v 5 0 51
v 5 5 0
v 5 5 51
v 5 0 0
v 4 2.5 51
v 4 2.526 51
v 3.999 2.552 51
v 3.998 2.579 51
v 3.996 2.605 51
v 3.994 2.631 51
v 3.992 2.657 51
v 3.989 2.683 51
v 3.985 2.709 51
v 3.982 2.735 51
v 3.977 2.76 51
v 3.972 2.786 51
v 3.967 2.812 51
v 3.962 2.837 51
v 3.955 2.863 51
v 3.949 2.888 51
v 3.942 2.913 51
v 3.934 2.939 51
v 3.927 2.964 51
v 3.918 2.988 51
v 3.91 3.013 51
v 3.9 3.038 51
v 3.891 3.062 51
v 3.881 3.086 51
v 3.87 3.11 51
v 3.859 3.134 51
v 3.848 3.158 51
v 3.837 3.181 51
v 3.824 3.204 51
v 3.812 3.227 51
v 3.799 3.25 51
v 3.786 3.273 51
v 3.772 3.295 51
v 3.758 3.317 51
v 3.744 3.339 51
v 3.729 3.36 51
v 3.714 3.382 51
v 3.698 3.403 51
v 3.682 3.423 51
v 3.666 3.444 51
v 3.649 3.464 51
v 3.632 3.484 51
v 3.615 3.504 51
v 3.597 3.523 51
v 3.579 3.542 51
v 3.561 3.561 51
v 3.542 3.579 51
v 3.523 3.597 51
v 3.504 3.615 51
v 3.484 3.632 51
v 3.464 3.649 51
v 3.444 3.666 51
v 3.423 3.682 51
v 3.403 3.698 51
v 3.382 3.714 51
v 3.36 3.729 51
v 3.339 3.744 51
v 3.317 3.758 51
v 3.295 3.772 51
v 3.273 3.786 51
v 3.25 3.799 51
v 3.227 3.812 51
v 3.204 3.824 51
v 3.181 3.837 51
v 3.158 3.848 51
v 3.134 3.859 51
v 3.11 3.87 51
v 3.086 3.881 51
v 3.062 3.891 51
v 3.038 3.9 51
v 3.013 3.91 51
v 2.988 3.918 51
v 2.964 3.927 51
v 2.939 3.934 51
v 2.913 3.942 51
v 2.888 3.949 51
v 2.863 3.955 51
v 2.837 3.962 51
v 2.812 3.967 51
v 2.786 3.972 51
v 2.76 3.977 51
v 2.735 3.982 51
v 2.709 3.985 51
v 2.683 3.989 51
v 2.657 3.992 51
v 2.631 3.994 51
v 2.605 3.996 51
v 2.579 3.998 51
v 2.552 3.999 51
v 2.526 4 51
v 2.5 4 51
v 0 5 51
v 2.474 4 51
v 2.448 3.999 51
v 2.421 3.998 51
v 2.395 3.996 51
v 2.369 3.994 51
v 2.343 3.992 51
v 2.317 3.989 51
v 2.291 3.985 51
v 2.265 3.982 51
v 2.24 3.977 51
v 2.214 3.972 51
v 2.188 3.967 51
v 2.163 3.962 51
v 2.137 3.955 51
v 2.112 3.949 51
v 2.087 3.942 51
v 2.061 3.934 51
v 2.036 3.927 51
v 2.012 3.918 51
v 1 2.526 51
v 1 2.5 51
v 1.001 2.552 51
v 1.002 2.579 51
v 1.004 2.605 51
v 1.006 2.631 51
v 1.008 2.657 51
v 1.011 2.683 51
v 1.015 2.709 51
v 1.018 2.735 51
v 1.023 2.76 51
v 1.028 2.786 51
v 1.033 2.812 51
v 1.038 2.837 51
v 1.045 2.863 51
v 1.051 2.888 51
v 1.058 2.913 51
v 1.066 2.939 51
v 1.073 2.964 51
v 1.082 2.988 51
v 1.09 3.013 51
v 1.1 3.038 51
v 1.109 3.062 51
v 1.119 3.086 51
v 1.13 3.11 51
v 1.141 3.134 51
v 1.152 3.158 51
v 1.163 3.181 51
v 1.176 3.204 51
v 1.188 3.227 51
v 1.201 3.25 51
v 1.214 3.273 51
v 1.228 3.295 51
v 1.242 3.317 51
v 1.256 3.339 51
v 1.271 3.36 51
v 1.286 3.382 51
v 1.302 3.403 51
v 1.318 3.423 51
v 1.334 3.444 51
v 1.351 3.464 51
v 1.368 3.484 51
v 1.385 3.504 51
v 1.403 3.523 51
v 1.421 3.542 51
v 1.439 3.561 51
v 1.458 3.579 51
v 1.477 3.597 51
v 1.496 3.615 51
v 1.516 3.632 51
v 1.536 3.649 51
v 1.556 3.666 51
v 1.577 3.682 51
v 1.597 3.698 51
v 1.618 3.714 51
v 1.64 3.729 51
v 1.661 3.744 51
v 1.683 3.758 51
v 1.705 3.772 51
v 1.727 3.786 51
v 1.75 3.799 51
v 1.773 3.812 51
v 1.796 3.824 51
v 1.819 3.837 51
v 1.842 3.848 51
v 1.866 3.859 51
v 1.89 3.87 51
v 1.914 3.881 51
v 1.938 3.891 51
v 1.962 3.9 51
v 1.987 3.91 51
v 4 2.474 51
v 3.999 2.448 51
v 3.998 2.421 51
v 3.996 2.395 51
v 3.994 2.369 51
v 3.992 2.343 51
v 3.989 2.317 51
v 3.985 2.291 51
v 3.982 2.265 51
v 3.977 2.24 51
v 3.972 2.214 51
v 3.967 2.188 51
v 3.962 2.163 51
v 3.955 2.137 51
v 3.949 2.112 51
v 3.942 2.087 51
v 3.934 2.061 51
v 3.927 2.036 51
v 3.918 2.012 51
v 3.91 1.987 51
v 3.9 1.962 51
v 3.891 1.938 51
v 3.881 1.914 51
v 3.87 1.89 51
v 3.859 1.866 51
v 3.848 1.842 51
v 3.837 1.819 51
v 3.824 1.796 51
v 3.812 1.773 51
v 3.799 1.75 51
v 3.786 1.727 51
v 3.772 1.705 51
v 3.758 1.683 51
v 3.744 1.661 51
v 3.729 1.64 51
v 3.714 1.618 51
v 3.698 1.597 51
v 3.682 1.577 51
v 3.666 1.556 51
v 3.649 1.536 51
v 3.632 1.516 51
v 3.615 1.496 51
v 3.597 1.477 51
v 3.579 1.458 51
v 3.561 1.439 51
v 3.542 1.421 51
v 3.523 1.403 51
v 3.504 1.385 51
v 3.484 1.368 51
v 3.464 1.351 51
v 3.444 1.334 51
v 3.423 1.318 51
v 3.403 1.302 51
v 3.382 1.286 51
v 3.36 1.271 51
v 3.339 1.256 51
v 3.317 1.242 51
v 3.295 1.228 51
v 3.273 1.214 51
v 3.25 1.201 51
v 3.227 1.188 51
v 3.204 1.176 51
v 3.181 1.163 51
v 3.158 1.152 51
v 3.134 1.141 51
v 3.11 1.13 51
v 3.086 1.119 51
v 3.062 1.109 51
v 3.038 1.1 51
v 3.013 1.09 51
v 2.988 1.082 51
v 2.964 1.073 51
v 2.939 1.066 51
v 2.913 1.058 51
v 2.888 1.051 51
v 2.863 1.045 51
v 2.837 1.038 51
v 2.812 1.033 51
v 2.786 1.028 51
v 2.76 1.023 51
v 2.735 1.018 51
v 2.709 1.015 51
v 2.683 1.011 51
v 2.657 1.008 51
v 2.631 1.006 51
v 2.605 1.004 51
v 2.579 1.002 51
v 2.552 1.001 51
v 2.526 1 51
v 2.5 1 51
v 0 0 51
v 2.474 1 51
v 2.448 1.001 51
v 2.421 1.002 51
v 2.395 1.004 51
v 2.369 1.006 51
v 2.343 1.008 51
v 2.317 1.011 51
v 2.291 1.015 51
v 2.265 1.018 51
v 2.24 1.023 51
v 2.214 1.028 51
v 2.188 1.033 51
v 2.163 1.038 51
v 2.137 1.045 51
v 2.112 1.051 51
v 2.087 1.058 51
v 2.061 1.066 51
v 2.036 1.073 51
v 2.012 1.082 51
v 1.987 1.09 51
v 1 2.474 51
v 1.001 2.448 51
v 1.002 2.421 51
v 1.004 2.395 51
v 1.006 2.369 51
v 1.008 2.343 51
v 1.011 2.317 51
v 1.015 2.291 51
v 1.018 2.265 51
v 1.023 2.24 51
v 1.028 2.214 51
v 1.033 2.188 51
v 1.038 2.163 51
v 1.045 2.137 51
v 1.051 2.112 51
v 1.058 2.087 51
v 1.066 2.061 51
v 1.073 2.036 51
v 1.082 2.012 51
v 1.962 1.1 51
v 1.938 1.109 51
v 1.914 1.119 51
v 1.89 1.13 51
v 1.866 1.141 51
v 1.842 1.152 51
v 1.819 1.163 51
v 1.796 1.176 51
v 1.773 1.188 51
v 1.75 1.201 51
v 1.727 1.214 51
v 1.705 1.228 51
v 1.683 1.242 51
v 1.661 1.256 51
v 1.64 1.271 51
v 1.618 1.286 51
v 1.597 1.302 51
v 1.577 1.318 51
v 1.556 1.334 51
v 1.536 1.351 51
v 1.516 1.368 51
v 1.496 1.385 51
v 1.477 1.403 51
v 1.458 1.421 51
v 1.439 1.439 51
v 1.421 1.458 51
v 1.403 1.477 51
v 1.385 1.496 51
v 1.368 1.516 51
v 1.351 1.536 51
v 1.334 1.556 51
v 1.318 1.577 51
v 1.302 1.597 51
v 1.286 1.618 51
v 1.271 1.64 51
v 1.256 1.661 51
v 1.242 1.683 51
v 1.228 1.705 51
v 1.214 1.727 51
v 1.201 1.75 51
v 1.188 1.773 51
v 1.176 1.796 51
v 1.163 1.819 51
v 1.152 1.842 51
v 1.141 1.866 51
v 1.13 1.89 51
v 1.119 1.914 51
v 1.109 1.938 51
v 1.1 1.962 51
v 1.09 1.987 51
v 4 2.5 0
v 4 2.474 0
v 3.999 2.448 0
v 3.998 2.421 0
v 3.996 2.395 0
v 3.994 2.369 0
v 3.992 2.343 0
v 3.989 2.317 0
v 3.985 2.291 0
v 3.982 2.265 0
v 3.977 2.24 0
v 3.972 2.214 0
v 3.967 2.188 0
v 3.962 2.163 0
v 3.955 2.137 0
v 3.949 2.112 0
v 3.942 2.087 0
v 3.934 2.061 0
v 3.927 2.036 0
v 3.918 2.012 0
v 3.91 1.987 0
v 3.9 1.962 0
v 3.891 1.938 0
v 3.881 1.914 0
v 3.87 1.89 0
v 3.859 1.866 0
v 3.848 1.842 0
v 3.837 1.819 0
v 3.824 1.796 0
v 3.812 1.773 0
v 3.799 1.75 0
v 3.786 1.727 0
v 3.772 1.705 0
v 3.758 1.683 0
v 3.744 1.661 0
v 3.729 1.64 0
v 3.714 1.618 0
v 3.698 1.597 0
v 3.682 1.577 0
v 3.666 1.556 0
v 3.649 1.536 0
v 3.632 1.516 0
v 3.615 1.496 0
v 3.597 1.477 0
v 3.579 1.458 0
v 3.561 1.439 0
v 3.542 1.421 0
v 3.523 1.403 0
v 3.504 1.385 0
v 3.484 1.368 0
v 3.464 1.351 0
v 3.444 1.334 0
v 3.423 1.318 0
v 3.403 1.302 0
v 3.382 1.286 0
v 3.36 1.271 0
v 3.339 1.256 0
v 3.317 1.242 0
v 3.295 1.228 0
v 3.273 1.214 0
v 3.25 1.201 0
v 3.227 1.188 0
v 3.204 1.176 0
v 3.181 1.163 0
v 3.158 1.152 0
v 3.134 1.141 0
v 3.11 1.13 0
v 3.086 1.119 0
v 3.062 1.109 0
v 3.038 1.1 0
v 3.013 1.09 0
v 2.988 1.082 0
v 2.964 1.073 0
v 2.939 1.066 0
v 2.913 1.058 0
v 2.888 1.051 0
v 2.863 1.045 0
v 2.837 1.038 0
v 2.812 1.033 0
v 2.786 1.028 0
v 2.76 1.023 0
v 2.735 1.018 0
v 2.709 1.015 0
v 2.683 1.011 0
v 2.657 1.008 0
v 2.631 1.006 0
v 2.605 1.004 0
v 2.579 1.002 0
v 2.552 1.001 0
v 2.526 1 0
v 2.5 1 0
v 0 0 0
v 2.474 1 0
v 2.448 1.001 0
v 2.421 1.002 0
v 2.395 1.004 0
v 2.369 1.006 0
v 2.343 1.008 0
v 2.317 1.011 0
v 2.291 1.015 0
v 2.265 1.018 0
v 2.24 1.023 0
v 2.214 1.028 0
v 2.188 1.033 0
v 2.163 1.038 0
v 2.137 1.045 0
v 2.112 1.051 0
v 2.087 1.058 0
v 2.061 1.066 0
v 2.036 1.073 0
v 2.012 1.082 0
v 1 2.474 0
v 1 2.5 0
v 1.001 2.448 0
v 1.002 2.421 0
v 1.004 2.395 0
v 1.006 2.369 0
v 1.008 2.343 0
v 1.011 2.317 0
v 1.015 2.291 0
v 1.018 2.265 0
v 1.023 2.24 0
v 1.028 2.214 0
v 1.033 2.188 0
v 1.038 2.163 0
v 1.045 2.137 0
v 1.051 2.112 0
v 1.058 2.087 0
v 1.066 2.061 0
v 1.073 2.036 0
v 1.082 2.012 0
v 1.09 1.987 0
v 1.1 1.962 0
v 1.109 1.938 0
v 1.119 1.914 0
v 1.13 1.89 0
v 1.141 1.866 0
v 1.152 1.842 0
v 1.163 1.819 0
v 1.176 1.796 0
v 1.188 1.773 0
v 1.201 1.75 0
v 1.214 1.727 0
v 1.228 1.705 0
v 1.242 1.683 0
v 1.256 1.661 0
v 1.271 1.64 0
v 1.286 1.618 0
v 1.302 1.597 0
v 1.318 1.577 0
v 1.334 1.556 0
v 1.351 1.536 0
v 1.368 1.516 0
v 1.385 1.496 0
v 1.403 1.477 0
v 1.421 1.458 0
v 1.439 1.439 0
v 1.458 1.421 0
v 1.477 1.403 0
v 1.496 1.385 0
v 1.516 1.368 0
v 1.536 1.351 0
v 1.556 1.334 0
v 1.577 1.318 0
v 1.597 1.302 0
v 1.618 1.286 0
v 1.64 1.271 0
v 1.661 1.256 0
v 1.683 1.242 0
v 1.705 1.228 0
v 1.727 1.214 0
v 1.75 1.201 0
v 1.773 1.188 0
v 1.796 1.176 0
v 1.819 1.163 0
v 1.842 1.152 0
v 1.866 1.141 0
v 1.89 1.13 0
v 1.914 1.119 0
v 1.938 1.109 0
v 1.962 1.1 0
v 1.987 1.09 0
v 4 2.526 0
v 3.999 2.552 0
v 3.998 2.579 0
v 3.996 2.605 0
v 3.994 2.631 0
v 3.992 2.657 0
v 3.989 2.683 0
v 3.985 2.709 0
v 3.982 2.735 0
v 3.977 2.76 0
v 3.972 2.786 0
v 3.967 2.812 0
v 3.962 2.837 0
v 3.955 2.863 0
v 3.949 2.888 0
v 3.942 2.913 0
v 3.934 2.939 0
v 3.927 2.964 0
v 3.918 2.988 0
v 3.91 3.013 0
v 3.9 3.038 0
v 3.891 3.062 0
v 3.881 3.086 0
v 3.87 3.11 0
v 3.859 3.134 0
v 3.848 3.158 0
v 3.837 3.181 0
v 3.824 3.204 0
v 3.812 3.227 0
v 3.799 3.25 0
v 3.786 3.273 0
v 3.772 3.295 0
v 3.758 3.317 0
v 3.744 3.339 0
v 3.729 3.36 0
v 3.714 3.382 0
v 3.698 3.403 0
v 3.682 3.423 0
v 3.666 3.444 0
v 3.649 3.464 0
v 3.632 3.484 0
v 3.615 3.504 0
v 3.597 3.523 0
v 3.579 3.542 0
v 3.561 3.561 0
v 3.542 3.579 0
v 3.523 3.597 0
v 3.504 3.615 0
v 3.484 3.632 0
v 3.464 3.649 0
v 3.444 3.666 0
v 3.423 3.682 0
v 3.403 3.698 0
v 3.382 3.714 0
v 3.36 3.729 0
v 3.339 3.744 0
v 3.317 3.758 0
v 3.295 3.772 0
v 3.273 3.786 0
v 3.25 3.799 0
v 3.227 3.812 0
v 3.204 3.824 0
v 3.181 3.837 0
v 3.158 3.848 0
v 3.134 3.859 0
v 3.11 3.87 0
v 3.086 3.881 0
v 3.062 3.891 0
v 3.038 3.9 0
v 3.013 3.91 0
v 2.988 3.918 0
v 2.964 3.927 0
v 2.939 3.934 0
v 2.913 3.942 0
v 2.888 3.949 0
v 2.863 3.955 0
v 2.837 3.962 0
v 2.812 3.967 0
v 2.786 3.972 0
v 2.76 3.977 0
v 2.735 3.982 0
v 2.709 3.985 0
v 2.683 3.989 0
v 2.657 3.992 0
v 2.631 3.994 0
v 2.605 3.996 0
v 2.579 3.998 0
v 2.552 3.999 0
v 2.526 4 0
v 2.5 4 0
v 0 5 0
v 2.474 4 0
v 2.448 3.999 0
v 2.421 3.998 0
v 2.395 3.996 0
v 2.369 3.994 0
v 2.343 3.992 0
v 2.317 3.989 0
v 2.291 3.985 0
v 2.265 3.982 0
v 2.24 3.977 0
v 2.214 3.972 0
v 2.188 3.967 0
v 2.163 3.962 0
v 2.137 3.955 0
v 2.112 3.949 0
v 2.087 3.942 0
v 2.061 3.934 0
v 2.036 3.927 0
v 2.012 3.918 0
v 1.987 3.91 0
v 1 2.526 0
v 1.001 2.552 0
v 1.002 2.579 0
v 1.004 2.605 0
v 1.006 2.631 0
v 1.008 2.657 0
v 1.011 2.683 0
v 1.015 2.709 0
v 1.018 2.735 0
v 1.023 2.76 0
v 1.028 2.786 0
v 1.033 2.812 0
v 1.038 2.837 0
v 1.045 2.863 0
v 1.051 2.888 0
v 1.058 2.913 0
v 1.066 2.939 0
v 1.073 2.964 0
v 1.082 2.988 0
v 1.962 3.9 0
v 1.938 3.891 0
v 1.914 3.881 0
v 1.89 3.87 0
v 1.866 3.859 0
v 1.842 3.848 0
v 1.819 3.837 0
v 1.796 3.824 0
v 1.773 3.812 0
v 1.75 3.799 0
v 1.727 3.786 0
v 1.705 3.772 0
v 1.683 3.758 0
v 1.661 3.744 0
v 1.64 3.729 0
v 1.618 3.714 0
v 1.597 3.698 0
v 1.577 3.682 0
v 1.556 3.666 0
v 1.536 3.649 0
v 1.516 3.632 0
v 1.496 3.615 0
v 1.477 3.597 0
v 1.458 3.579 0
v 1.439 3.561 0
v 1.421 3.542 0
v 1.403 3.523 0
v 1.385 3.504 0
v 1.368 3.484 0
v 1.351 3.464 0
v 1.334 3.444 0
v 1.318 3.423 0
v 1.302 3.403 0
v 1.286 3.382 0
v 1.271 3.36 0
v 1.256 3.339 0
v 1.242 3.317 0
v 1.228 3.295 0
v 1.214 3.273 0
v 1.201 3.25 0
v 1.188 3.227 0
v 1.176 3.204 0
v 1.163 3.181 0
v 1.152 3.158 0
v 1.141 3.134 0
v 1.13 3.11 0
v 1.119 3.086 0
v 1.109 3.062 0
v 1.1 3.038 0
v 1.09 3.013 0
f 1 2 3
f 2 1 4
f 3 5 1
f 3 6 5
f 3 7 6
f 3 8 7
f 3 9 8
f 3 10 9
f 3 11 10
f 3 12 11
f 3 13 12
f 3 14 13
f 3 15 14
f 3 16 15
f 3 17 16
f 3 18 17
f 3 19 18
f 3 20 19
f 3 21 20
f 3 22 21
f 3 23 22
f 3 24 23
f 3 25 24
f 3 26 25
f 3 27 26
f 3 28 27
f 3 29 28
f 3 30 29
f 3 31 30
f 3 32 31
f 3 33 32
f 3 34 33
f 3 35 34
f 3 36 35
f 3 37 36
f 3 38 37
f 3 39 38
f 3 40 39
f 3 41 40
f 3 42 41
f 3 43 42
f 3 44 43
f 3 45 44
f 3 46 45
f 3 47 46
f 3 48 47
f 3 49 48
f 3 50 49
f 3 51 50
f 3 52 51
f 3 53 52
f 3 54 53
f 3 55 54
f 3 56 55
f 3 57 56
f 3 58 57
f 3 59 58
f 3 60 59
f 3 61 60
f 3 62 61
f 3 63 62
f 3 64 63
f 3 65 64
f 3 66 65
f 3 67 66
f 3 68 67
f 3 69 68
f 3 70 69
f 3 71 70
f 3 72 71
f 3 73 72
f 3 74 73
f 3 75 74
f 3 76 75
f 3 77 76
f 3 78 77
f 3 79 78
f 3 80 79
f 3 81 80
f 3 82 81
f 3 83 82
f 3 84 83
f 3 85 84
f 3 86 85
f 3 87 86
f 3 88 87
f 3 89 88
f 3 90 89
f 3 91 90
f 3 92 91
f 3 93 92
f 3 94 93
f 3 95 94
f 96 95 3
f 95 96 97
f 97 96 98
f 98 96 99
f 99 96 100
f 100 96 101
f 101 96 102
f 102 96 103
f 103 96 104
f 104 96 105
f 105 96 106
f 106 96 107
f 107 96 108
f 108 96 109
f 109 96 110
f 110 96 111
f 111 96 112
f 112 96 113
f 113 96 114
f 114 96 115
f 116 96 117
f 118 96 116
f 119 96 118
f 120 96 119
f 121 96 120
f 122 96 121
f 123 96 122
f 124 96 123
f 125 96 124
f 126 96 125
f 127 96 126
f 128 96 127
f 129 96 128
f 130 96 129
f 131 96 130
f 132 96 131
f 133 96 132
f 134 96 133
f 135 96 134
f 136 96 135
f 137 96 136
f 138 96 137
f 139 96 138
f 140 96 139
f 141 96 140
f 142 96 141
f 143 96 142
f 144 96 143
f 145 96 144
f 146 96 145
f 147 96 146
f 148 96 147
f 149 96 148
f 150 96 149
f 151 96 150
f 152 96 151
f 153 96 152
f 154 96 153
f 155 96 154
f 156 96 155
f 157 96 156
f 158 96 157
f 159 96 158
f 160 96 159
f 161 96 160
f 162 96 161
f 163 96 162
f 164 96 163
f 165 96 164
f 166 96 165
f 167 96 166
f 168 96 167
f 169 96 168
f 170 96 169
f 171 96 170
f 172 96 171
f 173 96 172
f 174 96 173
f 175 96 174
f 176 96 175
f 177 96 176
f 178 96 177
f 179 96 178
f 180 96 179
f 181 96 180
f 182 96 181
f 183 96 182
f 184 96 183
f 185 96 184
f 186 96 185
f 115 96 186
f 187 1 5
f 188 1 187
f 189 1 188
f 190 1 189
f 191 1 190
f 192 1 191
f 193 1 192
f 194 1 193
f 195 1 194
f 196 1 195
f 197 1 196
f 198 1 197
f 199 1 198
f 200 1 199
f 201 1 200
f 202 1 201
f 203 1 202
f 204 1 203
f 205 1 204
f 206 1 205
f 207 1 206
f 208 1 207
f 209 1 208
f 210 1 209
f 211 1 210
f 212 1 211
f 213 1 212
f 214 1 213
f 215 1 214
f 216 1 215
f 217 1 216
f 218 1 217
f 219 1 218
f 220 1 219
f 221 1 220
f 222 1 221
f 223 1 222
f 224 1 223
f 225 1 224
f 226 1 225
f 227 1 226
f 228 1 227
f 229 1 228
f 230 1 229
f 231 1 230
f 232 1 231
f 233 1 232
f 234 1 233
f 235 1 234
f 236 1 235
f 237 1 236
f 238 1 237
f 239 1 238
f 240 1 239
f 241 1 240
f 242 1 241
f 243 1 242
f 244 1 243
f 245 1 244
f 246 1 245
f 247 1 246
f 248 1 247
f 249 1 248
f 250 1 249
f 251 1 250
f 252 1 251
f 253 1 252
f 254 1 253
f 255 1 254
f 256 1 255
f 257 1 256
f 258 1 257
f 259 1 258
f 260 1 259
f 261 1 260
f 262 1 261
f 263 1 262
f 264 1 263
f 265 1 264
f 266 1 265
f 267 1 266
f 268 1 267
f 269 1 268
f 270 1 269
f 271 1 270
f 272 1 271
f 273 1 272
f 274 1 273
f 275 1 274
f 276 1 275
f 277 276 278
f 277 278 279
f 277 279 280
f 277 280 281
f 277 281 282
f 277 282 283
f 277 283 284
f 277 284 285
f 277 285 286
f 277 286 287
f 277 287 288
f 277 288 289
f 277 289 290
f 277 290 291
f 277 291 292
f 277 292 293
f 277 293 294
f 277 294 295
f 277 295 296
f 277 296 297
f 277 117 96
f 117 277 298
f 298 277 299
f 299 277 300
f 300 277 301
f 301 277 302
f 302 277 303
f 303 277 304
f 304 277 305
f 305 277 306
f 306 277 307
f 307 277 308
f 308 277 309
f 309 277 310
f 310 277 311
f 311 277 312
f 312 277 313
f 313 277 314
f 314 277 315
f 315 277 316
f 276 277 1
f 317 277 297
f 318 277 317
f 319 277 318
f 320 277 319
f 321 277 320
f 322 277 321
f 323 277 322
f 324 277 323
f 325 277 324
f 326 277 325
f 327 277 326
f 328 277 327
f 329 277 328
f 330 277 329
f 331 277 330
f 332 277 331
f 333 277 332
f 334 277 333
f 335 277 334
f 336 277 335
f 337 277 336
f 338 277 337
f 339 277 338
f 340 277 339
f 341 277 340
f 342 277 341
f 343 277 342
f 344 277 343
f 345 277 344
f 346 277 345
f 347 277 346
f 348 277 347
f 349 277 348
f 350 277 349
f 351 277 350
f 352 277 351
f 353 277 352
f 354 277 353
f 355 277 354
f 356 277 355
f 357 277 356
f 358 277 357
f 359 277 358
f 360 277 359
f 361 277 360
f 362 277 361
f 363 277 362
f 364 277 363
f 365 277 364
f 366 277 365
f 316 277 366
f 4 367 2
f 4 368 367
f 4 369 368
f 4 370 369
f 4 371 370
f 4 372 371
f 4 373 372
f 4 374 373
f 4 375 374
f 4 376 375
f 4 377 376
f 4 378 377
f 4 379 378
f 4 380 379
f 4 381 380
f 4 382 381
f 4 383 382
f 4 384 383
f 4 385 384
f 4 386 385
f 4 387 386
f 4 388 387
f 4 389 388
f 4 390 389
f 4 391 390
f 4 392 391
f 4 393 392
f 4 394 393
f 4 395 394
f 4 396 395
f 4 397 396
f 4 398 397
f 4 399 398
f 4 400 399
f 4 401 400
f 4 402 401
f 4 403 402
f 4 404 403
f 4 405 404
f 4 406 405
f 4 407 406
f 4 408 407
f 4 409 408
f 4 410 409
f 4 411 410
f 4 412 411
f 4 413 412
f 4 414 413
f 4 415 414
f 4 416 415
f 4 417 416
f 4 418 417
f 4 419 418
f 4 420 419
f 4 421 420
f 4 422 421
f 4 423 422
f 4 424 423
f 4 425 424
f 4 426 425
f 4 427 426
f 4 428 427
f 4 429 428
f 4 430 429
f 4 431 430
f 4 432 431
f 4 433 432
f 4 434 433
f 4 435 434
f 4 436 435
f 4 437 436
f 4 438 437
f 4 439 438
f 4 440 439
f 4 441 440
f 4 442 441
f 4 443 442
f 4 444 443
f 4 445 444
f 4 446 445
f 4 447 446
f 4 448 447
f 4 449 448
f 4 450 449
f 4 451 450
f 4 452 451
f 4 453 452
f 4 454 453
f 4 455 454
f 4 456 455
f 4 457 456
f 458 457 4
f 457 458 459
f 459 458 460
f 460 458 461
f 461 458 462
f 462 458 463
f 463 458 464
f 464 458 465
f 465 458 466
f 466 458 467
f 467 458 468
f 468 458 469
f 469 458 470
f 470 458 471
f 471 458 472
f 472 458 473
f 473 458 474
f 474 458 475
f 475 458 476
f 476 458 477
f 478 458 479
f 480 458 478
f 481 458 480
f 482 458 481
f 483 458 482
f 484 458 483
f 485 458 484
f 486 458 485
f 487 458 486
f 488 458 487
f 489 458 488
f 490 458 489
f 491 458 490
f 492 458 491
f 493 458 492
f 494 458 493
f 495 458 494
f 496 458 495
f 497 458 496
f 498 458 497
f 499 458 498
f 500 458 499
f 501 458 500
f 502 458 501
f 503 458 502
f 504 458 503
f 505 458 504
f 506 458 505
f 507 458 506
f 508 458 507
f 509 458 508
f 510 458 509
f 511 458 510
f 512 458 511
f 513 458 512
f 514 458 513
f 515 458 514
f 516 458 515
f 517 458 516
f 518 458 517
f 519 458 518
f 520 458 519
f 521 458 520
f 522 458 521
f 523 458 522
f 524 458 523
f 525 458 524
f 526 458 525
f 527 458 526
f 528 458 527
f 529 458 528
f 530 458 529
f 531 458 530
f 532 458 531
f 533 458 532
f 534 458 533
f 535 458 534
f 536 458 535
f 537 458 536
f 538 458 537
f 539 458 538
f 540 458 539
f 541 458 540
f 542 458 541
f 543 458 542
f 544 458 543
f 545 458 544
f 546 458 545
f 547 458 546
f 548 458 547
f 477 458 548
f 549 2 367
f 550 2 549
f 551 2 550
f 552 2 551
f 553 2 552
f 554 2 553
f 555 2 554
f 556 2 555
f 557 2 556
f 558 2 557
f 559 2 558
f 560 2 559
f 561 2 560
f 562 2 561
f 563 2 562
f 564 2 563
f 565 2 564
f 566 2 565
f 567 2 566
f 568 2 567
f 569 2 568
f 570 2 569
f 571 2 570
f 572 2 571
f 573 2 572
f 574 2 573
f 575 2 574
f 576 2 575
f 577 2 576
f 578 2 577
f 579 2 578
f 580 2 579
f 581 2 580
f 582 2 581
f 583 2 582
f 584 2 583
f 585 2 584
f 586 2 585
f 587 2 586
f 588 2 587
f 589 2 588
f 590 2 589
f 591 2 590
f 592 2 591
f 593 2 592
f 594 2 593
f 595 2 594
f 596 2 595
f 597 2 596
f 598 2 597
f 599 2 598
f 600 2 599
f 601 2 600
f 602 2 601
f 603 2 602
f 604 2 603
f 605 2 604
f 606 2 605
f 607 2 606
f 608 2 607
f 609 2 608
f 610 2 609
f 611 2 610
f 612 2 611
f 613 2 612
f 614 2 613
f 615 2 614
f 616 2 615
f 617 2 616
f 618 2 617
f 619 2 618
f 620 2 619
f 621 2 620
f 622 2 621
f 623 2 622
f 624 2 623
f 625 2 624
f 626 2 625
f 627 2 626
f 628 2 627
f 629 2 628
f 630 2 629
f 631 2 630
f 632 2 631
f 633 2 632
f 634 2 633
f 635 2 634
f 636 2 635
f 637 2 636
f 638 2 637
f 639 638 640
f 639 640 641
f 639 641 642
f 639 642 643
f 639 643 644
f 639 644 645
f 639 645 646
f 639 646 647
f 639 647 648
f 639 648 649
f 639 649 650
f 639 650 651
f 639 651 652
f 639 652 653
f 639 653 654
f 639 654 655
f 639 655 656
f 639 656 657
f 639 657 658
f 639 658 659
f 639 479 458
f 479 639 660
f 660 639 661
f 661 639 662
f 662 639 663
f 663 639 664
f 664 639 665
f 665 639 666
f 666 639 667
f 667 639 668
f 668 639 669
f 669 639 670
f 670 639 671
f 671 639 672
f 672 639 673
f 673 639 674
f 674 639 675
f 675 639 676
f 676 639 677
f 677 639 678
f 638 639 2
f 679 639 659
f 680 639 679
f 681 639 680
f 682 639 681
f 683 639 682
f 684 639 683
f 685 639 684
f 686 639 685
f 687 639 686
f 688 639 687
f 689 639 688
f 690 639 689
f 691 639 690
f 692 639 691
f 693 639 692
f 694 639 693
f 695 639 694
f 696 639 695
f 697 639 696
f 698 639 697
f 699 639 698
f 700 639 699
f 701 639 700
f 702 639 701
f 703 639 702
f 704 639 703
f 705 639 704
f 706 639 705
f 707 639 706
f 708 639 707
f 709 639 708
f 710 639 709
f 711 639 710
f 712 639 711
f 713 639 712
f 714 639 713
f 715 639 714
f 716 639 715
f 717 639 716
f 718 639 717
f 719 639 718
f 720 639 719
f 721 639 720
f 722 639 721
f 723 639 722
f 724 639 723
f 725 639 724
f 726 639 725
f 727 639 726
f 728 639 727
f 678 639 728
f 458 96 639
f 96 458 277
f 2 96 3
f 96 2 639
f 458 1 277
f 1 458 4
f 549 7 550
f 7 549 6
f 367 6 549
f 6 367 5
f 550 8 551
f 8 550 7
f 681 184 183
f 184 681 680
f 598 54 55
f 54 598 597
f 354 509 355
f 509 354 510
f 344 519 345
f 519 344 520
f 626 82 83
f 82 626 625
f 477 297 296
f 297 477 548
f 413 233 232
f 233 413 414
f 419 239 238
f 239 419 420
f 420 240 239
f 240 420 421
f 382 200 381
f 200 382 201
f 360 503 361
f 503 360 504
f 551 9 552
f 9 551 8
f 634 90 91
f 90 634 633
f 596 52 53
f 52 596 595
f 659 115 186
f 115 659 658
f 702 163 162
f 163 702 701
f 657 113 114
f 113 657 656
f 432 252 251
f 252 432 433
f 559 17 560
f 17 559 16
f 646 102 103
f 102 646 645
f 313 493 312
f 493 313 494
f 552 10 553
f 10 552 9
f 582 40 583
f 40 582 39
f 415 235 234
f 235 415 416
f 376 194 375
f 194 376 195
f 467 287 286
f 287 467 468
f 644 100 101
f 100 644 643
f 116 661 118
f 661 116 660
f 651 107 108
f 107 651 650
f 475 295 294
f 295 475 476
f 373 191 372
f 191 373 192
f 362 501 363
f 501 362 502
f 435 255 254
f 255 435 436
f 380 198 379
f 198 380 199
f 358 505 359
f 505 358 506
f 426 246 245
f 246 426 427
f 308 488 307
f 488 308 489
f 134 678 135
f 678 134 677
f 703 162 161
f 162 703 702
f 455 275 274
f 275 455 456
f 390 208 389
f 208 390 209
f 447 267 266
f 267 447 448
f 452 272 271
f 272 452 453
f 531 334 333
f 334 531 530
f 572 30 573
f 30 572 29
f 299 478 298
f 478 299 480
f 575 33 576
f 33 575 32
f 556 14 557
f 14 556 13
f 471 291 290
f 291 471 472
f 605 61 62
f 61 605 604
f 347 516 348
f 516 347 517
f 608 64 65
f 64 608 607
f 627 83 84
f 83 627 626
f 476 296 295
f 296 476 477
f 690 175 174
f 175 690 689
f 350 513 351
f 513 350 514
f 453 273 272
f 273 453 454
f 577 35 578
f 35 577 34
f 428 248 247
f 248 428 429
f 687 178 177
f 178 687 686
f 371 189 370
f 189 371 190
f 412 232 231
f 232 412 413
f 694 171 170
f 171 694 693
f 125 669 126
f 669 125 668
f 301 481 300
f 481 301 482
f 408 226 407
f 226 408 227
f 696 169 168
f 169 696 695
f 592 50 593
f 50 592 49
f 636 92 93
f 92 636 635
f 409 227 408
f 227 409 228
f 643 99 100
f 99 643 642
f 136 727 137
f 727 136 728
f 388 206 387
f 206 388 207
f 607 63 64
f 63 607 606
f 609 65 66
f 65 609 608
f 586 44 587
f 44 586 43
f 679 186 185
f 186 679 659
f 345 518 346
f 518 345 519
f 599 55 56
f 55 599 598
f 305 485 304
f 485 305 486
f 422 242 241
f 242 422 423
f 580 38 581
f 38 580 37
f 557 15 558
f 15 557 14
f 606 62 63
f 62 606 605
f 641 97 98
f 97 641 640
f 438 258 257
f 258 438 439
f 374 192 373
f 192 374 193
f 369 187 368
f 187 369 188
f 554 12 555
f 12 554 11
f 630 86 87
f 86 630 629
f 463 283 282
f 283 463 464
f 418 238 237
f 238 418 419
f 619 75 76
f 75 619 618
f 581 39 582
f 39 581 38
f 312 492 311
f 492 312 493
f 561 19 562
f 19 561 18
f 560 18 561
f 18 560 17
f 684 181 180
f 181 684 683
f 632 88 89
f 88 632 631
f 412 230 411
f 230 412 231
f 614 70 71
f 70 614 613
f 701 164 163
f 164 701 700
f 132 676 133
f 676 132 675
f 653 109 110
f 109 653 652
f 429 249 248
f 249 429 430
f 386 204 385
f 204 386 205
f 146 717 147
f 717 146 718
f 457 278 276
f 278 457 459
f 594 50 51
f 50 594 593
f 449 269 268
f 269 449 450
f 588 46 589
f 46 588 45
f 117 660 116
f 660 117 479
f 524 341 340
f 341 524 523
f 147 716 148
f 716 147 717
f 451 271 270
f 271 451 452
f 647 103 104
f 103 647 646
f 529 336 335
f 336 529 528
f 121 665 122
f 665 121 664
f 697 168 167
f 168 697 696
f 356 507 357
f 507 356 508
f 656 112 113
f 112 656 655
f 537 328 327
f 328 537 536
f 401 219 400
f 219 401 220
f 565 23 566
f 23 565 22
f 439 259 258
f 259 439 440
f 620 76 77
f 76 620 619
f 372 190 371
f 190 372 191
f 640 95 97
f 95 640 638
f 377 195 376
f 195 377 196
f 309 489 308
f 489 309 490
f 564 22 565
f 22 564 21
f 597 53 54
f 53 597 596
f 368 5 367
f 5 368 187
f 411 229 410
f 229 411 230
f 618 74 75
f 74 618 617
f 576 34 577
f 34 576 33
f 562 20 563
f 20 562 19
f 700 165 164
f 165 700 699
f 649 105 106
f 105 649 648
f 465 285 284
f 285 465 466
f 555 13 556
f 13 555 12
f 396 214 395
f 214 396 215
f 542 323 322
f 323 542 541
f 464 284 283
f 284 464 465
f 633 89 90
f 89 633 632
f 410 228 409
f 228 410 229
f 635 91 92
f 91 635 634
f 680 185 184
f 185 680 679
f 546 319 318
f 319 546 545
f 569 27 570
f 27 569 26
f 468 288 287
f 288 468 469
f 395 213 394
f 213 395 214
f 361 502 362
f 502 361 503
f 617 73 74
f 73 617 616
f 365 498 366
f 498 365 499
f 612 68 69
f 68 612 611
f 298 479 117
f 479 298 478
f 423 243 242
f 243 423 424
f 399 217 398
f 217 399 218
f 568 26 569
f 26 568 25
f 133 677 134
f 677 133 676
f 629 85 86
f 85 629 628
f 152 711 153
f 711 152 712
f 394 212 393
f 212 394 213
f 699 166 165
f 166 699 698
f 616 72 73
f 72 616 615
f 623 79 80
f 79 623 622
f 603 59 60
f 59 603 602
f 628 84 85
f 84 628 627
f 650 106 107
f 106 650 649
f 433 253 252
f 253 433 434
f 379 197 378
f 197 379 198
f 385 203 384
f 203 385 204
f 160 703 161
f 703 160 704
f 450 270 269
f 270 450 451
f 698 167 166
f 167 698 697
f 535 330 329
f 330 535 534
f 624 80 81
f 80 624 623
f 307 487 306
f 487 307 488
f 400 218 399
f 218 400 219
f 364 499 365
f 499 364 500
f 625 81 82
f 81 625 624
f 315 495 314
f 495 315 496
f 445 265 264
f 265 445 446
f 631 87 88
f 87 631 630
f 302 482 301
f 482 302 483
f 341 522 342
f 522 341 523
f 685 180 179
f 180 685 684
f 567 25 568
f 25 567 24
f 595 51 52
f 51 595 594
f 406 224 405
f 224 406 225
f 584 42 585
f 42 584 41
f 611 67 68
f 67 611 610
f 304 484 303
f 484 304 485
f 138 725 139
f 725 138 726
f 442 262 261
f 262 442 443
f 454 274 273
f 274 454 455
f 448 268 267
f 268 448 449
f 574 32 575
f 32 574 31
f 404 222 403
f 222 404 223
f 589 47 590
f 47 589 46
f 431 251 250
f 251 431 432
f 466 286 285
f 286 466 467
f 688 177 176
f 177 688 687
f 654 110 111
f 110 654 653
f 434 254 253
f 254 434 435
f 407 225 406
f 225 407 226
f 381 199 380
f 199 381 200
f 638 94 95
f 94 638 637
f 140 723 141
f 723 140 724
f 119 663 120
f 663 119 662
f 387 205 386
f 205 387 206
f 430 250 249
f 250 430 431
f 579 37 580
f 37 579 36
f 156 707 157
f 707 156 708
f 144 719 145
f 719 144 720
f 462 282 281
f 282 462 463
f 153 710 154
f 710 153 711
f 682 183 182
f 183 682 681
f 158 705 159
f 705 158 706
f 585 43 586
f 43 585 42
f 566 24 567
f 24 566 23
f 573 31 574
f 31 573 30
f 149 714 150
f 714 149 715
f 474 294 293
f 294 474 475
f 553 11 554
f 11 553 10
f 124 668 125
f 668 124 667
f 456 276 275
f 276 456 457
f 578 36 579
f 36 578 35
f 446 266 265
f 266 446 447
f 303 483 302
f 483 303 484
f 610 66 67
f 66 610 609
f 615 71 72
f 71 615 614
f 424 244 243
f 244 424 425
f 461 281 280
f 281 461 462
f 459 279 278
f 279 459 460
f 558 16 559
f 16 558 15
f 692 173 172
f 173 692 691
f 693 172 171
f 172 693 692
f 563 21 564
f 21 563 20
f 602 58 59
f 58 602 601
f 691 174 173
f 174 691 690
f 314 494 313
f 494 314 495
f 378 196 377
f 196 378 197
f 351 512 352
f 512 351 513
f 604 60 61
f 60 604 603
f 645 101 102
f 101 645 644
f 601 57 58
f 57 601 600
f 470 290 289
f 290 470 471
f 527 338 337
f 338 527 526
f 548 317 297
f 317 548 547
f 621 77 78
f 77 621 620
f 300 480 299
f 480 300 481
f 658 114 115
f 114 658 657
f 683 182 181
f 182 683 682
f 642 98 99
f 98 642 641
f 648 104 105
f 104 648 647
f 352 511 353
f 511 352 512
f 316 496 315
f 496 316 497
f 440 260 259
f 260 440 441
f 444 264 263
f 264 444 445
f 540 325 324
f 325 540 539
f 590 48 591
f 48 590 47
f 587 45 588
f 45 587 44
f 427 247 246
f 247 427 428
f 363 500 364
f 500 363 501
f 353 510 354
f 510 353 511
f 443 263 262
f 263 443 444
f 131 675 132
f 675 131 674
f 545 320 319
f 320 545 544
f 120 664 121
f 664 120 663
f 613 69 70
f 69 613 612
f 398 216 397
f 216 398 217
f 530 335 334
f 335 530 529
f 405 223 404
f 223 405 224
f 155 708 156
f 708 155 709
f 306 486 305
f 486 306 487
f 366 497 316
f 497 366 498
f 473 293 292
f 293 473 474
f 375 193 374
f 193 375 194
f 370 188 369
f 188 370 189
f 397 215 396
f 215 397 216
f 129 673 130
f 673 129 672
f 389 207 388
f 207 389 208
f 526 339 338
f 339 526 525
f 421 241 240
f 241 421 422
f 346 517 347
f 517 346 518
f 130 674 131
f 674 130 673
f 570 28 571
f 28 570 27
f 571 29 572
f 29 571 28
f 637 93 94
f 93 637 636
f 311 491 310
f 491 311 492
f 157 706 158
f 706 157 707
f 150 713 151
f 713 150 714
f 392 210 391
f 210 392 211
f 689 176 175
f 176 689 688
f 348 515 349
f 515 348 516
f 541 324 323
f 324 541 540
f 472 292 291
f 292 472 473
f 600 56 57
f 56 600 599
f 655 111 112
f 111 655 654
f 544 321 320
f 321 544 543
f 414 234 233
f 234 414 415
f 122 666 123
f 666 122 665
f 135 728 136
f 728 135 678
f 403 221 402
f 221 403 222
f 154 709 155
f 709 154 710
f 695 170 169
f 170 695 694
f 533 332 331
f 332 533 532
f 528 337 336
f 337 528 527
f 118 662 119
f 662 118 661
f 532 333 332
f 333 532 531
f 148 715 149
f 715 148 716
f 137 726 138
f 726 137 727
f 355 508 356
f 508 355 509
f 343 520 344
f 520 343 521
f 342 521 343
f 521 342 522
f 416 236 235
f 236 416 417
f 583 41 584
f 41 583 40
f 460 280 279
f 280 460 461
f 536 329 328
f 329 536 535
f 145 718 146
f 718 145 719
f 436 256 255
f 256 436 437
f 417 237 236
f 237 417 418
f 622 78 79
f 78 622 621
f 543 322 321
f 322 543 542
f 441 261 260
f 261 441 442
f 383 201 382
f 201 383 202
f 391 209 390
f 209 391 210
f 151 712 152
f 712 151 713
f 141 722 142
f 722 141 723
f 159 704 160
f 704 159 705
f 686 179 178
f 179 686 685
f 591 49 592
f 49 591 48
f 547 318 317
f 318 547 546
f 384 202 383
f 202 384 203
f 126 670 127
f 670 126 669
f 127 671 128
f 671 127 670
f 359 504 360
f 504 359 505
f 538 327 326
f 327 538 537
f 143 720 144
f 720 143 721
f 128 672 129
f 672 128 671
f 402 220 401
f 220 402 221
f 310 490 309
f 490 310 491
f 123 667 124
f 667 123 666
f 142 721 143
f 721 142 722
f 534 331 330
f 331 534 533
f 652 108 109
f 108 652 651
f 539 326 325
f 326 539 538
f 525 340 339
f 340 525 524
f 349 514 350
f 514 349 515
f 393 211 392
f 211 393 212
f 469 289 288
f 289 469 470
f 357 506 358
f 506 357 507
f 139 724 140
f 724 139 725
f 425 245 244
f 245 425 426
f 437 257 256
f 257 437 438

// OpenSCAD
//printing stuff to fit on the microscope to hold the pizero and camera
//designed to fit in the arm of a microscope above the stage behind the optics
//will have to also allow for power cables to the existing lighting and power to the usb cam 

$fn=360;

//first test print of cross beam to fit in the arm and be screwed in place
crossBeam = [5,5,51];
screwD = 3 ;
wiggle = 0.01;
difference(){
    cube(crossBeam);
    translate([crossBeam.x/2, crossBeam.y/2, -wiggle/2]) cylinder(h = crossBeam.z + wiggle, d = screwD);
}
